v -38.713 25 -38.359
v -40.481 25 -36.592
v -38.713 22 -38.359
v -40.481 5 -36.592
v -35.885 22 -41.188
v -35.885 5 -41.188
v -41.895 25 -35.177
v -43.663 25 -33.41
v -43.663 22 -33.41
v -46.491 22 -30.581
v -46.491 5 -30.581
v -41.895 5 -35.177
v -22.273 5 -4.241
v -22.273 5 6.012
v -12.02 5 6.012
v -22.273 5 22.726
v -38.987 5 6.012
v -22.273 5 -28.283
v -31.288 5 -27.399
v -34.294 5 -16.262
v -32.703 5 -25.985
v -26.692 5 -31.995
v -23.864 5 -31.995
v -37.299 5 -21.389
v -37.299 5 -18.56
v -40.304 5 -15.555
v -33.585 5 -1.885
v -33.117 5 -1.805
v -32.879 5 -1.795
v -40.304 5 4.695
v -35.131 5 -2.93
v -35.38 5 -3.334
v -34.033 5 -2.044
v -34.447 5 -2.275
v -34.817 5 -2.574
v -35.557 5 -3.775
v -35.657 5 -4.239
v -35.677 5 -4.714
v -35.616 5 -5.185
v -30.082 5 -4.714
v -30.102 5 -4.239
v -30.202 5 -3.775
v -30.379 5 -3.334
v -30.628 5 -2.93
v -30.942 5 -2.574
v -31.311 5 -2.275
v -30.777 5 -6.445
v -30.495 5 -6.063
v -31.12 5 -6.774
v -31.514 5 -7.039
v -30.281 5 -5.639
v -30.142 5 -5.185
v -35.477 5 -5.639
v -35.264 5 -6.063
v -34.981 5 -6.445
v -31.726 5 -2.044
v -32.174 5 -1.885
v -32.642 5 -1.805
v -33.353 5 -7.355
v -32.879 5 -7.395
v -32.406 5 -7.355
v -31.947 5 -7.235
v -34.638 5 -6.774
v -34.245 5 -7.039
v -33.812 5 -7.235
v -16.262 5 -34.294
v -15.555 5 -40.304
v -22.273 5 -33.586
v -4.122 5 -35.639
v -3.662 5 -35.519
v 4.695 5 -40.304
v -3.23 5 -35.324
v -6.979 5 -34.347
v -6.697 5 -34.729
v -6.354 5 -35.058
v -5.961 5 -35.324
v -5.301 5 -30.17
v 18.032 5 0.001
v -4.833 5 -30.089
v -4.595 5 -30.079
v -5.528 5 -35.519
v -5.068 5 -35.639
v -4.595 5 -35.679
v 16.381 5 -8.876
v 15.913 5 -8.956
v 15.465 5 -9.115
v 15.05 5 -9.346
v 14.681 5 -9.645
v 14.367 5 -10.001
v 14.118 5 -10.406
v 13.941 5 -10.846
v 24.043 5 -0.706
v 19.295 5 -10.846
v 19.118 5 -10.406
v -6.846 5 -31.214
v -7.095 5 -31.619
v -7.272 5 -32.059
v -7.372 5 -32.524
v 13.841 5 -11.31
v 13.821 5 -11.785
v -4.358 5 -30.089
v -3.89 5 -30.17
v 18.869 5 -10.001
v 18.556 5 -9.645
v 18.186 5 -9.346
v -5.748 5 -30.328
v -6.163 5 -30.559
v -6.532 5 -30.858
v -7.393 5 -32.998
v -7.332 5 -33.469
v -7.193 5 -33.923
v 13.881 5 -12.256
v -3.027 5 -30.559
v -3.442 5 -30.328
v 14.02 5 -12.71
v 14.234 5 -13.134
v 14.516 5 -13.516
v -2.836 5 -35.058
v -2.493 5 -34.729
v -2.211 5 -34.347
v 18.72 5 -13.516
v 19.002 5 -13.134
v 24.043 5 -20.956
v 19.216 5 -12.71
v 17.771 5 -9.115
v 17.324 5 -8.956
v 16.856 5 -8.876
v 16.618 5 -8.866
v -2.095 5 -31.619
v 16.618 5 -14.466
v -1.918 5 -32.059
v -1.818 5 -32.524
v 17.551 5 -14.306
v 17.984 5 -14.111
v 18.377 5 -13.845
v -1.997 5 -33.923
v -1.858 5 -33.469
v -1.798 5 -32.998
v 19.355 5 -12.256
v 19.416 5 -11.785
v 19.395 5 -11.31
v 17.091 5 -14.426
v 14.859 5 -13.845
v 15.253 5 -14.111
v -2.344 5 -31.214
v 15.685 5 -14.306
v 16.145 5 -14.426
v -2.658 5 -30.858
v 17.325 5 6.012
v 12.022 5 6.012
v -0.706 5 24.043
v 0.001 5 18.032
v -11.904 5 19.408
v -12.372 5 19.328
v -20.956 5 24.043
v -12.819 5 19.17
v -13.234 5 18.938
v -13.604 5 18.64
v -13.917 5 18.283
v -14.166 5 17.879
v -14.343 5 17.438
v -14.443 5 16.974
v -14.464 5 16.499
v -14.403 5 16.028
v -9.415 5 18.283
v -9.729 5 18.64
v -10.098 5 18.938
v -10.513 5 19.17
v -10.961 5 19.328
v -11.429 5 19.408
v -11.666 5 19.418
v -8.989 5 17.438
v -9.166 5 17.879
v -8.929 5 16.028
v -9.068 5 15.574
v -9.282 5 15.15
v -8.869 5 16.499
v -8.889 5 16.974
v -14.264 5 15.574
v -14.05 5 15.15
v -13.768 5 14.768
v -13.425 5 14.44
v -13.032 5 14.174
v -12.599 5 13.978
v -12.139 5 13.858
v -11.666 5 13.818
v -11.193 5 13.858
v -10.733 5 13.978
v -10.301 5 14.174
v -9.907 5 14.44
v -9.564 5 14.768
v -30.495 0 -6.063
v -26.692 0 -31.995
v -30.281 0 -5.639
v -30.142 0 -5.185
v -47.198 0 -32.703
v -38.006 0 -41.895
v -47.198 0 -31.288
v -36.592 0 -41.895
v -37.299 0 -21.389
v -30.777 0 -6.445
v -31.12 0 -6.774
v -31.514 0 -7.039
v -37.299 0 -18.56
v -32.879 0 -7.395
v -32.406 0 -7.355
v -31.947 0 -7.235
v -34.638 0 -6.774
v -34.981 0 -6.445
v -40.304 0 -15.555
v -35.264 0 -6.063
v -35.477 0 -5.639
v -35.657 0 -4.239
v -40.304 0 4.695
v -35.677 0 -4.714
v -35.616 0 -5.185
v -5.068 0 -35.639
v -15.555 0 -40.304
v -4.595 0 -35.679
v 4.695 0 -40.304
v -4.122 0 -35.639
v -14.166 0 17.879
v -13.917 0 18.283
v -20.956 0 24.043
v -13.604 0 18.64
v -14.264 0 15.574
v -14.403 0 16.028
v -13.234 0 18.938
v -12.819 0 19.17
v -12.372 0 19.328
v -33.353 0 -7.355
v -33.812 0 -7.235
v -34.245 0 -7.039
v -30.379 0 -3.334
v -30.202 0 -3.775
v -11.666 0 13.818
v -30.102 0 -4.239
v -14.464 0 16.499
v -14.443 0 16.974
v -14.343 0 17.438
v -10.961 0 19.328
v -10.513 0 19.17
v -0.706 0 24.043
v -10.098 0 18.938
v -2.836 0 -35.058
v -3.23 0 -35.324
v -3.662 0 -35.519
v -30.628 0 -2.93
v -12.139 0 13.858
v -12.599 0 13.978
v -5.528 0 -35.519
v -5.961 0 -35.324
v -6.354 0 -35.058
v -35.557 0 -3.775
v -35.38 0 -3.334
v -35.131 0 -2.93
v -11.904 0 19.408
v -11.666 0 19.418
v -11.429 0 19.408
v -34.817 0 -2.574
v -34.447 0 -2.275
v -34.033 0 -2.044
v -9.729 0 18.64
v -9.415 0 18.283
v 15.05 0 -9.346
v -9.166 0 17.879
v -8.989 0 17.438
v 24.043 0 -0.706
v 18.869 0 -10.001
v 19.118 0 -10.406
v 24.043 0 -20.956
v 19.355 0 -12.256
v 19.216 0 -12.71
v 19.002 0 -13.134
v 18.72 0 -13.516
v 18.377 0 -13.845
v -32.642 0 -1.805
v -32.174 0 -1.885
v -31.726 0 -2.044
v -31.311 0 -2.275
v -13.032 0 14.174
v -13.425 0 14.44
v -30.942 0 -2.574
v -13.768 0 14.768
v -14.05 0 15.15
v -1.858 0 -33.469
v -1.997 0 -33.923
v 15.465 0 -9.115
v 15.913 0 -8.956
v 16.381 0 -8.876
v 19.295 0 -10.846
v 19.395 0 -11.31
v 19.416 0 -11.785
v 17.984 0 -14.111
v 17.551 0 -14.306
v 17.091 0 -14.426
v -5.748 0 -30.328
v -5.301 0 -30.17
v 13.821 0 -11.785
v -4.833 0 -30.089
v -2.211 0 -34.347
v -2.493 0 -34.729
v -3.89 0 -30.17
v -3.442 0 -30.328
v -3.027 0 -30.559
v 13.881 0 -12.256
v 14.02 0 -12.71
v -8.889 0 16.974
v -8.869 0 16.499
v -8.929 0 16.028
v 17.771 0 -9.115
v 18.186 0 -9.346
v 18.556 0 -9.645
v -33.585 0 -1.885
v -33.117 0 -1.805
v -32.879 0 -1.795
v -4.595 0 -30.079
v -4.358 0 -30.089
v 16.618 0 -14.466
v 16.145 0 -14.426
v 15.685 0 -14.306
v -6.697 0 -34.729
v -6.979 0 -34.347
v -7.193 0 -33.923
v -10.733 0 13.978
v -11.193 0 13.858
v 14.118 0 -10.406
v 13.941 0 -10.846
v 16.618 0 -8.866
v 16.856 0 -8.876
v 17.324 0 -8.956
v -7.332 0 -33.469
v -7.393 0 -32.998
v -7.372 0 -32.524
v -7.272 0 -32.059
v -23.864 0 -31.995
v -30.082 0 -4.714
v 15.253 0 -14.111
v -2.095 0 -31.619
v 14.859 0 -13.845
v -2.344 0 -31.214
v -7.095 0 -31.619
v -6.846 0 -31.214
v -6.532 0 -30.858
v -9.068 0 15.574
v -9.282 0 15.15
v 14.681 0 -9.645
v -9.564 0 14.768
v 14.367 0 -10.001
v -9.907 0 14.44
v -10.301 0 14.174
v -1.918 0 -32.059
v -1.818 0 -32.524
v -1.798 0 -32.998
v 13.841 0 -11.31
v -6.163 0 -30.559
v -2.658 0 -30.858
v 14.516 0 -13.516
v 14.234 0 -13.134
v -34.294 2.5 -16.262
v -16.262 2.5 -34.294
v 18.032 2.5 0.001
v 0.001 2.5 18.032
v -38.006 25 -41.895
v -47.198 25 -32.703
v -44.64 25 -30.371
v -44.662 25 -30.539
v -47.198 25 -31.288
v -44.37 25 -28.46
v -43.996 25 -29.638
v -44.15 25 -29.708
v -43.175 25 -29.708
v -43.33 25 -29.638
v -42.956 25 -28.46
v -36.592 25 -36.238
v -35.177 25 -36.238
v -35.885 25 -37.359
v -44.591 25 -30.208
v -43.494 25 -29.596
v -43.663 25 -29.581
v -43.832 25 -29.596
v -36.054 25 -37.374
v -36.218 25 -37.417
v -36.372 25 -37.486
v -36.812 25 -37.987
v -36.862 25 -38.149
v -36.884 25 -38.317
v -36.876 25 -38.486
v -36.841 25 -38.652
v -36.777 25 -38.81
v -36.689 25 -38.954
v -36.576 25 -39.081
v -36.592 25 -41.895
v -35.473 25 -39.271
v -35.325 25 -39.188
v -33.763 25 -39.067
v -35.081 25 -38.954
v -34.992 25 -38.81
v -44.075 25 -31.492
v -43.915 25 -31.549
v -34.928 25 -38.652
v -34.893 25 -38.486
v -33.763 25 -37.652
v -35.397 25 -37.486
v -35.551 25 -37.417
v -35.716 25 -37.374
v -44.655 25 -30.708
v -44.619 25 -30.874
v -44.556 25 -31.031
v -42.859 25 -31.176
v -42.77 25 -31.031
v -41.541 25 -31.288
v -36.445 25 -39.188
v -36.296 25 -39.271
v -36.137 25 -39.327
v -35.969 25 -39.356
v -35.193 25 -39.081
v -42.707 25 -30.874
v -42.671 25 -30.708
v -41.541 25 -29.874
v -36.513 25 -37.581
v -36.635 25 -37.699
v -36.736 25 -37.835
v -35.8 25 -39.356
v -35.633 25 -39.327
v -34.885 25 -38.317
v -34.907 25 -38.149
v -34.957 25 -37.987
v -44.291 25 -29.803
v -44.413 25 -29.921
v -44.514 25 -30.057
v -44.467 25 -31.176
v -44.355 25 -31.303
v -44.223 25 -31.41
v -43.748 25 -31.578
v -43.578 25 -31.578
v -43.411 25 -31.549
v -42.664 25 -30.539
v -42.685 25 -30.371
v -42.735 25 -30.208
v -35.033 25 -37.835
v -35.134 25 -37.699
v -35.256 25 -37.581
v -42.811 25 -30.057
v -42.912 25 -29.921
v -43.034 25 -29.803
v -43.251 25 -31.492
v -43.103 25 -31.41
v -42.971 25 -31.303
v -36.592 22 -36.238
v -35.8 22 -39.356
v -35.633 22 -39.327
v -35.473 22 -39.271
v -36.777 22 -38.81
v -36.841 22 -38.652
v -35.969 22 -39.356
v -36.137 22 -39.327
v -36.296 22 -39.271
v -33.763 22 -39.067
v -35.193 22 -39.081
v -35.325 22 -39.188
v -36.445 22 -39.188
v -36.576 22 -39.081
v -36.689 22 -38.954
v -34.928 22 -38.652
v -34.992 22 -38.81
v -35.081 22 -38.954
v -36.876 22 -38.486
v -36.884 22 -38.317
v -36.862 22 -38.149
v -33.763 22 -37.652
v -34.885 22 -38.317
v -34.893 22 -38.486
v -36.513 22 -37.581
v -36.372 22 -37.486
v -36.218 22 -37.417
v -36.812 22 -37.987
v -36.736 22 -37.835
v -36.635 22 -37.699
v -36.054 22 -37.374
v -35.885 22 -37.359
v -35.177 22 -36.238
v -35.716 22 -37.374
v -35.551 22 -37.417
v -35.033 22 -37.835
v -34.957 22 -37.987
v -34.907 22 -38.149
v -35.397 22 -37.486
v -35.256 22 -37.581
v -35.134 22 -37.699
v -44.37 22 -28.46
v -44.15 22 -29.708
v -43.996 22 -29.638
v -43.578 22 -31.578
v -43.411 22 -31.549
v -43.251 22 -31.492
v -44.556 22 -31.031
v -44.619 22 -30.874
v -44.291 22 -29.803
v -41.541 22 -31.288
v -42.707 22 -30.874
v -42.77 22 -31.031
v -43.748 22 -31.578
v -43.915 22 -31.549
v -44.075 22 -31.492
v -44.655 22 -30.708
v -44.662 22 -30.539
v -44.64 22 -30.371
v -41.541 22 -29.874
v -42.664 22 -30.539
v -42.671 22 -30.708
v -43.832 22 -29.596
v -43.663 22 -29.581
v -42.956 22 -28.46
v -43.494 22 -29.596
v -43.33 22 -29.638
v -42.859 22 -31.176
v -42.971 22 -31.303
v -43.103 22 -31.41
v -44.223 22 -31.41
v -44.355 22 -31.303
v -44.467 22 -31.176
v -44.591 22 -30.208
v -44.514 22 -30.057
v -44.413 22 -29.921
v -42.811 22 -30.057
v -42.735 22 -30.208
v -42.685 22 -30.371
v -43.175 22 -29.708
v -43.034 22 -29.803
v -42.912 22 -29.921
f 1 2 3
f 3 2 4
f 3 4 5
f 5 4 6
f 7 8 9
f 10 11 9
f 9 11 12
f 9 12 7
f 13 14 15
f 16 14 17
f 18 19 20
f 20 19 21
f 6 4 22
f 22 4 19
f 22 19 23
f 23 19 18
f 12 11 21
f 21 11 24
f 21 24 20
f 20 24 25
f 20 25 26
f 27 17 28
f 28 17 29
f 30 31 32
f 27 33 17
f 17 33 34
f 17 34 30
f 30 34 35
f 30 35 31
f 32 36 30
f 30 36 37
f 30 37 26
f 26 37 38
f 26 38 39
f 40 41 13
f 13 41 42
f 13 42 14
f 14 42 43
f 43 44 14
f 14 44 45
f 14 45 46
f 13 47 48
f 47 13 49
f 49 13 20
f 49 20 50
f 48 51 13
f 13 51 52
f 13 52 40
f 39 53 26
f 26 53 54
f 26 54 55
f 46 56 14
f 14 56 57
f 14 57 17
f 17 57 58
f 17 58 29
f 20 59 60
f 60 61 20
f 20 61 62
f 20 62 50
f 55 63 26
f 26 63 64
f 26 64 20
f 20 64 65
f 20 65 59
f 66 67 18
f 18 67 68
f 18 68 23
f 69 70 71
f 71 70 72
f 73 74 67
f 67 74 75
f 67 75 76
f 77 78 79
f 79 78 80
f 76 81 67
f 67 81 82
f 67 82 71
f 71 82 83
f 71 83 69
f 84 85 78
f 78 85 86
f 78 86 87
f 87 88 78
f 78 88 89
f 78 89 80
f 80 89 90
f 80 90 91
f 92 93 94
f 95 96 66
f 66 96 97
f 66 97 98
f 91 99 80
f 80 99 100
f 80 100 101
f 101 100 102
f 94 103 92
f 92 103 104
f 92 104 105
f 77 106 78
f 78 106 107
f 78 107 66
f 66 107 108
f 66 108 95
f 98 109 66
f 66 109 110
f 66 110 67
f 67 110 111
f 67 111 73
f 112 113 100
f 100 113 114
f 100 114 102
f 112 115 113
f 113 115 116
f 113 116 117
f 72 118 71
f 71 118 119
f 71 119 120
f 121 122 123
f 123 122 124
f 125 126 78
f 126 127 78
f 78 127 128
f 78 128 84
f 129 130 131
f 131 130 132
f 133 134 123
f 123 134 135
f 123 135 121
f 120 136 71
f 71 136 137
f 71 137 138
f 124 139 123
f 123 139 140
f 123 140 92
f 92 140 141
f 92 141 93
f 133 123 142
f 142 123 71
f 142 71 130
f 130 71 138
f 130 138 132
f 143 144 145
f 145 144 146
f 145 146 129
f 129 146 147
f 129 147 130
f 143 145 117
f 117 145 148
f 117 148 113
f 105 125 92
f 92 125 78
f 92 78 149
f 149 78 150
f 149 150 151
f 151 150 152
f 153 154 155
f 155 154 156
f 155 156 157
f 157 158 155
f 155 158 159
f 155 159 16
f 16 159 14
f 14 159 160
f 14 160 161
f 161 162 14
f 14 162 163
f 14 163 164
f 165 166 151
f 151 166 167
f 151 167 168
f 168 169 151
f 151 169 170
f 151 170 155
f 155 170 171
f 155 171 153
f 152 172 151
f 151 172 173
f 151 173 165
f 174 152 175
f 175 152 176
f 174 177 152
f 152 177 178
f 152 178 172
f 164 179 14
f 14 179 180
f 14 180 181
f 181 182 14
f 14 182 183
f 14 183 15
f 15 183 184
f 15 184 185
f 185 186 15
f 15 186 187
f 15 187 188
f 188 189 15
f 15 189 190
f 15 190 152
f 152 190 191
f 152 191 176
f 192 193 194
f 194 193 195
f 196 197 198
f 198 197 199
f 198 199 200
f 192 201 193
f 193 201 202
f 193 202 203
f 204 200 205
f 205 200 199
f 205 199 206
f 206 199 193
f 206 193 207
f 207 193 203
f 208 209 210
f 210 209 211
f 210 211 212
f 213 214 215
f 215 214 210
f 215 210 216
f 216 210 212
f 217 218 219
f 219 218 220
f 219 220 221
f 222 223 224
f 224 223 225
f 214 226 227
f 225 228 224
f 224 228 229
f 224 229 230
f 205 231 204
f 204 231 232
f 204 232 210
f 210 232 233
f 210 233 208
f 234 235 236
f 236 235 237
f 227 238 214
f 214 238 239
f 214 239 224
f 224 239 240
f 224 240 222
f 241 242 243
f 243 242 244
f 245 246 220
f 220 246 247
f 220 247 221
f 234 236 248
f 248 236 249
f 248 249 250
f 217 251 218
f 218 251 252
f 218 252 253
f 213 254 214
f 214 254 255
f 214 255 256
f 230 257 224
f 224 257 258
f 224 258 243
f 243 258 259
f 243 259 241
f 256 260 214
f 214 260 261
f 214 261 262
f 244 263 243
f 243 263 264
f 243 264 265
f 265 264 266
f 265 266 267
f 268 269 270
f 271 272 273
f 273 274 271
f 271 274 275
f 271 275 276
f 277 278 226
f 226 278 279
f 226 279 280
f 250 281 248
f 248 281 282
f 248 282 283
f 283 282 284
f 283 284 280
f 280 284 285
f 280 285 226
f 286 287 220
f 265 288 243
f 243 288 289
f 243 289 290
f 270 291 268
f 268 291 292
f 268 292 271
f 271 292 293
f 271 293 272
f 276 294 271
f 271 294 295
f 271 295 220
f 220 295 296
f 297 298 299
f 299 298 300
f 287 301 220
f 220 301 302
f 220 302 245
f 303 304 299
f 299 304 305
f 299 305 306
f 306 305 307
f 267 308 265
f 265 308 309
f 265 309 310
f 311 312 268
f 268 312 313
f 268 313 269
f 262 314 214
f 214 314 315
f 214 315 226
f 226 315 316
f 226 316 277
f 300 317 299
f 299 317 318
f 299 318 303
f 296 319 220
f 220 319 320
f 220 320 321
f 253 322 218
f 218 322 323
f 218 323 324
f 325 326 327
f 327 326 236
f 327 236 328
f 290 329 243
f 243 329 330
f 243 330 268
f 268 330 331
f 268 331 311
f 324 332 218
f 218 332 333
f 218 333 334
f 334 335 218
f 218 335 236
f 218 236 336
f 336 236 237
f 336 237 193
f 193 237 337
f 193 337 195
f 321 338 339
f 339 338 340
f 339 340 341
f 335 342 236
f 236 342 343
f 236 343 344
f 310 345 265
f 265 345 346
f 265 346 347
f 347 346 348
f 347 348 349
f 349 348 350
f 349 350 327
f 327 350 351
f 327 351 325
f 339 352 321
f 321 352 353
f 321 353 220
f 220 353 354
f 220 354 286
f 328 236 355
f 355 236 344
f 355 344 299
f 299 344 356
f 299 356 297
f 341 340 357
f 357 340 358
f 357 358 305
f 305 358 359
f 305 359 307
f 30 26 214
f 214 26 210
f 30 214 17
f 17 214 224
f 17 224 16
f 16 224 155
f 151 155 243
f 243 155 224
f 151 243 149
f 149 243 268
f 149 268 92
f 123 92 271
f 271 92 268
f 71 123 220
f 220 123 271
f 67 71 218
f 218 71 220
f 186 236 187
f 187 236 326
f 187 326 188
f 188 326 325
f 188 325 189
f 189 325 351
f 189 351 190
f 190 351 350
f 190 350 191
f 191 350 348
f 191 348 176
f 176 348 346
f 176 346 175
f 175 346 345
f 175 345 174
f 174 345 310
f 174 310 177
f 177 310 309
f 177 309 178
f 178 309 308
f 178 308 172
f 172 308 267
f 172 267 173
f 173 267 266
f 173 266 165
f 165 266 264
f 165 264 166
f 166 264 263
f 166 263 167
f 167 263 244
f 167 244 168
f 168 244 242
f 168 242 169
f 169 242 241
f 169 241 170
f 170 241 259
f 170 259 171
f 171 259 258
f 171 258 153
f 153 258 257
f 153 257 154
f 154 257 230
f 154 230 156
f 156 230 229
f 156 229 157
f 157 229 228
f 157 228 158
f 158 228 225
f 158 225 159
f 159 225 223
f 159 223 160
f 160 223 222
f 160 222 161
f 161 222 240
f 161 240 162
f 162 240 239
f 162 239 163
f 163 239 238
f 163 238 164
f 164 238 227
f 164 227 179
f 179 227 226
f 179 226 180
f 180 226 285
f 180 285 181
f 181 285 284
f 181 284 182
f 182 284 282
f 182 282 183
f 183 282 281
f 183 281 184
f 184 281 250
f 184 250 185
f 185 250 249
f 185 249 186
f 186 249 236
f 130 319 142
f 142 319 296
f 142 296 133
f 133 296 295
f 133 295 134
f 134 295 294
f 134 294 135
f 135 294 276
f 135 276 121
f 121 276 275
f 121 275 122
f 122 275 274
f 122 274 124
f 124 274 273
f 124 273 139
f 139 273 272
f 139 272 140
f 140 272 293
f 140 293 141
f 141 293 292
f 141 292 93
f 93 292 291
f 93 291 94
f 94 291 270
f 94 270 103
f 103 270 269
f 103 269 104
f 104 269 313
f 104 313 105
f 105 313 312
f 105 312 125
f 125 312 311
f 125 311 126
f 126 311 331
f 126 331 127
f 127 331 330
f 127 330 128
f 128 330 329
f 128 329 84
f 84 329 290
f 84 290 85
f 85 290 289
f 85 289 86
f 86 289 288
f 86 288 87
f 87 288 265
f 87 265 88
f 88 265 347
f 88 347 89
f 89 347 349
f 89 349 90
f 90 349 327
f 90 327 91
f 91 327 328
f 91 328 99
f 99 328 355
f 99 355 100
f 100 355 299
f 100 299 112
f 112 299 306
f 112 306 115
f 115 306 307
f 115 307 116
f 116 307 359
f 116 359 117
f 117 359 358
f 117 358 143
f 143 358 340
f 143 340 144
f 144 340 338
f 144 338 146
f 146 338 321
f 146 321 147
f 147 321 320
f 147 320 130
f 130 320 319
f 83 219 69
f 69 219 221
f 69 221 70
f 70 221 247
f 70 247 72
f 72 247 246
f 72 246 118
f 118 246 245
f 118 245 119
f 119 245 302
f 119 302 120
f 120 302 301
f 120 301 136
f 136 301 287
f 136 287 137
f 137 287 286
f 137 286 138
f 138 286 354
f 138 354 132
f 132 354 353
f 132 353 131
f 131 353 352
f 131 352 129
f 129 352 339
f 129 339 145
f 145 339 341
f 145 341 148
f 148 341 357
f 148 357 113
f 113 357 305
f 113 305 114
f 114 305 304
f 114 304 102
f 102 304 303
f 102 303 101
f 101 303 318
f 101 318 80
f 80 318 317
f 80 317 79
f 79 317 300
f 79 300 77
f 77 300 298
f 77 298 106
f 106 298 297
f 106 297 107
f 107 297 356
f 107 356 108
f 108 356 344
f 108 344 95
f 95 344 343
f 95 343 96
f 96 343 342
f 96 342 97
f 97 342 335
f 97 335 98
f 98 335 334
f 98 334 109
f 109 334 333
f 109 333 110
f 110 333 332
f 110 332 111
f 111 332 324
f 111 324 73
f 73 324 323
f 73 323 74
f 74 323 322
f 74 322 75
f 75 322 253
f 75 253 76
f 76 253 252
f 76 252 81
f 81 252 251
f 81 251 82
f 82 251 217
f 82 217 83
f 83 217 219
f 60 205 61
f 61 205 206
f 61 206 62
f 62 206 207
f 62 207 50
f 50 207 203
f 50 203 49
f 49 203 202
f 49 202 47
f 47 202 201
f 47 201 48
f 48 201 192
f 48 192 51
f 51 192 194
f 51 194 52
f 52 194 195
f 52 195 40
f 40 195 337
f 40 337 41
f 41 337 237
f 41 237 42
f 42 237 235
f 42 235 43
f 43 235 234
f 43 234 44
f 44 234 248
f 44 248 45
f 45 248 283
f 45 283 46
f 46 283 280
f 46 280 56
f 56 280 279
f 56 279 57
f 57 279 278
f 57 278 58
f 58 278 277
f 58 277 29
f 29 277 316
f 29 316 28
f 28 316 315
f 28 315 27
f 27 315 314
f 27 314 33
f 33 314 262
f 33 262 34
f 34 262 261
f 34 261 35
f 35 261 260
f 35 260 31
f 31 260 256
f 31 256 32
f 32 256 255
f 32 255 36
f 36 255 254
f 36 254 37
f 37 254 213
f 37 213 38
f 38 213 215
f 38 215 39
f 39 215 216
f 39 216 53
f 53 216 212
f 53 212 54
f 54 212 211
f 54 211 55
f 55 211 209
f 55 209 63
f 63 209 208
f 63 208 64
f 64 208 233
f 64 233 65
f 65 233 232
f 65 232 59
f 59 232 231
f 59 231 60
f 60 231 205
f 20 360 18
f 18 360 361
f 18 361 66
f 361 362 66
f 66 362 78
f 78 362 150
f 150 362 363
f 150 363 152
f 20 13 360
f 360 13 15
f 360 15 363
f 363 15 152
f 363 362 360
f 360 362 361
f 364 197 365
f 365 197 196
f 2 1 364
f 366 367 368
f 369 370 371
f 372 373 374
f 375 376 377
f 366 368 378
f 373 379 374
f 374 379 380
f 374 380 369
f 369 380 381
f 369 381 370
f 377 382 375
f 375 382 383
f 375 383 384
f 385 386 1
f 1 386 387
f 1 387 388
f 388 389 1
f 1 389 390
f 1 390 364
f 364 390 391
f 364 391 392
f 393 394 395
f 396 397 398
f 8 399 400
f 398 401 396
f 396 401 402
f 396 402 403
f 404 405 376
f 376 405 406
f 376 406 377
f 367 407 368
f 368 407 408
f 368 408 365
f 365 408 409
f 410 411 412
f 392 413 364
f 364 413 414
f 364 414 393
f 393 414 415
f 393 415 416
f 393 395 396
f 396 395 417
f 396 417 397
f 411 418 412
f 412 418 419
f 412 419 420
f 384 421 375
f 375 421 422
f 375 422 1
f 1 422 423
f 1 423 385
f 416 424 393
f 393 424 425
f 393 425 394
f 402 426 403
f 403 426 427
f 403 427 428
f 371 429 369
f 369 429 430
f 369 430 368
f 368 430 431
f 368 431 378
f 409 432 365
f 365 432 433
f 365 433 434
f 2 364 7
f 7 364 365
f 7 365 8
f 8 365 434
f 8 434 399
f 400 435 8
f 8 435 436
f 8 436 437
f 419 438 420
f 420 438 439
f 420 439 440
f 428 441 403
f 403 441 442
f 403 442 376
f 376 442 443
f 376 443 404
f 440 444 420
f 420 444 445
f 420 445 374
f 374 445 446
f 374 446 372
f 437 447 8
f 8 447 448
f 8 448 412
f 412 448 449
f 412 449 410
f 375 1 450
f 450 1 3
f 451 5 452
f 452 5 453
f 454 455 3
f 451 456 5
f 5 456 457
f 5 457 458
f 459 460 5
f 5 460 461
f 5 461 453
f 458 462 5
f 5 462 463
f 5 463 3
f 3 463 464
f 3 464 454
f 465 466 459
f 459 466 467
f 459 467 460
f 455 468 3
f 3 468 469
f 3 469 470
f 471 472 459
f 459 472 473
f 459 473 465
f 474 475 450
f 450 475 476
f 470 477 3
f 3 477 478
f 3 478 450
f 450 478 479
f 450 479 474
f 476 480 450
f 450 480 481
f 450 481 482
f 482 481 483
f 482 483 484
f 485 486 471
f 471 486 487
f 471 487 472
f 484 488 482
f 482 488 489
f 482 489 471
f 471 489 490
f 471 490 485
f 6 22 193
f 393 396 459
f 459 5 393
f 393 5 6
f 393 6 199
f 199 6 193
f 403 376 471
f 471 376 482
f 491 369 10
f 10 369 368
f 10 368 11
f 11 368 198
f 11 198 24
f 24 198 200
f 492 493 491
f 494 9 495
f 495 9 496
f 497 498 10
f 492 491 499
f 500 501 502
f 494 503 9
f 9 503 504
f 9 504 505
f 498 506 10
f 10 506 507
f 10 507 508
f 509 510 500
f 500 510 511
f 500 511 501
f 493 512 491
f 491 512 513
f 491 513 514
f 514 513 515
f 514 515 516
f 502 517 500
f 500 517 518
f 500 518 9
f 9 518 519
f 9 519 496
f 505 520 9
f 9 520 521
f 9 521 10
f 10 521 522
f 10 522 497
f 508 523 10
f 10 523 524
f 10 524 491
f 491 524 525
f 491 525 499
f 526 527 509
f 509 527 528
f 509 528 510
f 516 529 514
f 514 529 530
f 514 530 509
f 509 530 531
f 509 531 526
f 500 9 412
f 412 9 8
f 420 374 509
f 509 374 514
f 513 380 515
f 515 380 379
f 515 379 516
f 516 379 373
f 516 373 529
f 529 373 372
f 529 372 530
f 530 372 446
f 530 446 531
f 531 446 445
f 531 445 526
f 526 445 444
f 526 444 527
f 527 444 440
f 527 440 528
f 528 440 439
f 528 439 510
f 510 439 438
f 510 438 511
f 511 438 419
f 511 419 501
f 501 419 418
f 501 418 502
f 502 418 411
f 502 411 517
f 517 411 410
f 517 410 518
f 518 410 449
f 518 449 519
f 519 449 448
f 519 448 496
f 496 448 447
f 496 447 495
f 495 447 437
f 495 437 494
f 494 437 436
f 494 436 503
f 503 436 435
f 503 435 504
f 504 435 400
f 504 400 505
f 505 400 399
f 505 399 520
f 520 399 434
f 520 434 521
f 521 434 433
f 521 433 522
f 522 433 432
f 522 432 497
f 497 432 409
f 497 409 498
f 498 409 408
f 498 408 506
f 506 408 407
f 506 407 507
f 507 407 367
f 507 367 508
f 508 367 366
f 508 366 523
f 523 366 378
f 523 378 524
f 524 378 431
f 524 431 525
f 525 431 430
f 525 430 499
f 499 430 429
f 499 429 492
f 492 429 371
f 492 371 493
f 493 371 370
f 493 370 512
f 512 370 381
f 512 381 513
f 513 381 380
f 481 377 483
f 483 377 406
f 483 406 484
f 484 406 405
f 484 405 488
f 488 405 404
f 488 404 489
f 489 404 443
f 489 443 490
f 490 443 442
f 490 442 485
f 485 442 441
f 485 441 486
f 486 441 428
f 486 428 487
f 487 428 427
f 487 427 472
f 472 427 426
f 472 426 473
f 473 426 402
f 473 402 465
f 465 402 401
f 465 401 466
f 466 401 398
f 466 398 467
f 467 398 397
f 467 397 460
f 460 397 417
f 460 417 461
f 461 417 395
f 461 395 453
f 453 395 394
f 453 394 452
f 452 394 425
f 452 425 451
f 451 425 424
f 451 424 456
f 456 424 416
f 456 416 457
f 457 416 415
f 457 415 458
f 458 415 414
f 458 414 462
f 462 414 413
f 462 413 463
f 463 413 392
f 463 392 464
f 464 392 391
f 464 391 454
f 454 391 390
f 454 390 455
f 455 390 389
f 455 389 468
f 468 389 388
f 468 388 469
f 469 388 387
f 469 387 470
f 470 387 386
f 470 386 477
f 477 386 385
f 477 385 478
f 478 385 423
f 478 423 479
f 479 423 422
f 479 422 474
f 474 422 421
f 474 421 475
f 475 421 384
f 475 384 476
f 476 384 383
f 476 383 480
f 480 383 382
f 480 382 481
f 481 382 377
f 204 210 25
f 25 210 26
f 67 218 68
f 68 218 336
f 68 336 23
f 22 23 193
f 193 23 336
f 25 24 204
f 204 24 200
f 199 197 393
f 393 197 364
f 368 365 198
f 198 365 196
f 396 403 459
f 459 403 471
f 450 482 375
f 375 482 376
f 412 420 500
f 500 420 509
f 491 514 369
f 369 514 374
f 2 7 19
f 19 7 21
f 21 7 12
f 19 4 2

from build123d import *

# Parameters (mm, degrees)
SKETCH1_R           = 2.8
BOSS_EXTRUDE1_DEPTH = 5
CUT_EXTRUDE1_DEPTH  = 2.5
SKETCH3_W           = 35
SKETCH3_H           = 5
BOSS_EXTRUDE2_DEPTH = 17
BOSS_EXTRUDE3_DEPTH = 20
SKETCH5_W           = 4
SKETCH5_H           = 3
BOSS_EXTRUDE4_DEPTH = 4
CUT_EXTRUDE2_REACH  = 80.107
SKETCH6_R           = 1
CUT_EXTRUDE5_REACH  = 93.963
SKETCH12_W          = 6.25
SKETCH12_H          = 20
SKETCH12_W_2        = 13.75
CUT_EXTRUDE6_REACH  = 78.654
CHAMFER6_SIZE       = 2
CHAMFER7_SIZE       = 1
CHAMFER8_SIZE       = 1
RIB1_REACH          = 69.778
SKETCH17_WALL_W     = 161.408820482
SKETCH17_WALL_H     = 2


with BuildPart() as part:
    # Sketch1 → Boss-Extrude1 (new body)
    with BuildSketch(Plane(origin=(0, 0, 0), x_dir=(1, 0, 0), z_dir=(0, 1, 0))):
        Polygon((-40.303943114, 15.555205773), (-15.555205773, 40.303943114), (4.694794227, 40.303943114), (24.042773974, 20.955963368), (24.042773974, 0.705963368), (-0.705963368, -24.042773974), (-20.955963368, -24.042773974), (-40.303943114, -4.694794227), align=None)
        with Locations(Location((-11.666118476, -16.618152771, 0), (0, 0, 270))):
            Circle(SKETCH1_R, mode=Mode.SUBTRACT)
        with Locations(Location((16.618152771, 11.666118476, 0), (0, 0, 270))):
            Circle(SKETCH1_R, mode=Mode.SUBTRACT)
        with Locations(Location((-4.595050664, 32.879321912, 0), (0, 0, 270))):
            Circle(SKETCH1_R, mode=Mode.SUBTRACT)
        with Locations(Location((-32.879321912, 4.595050664, 0), (0, 0, 270))):
            Circle(SKETCH1_R, mode=Mode.SUBTRACT)
    extrude(amount=BOSS_EXTRUDE1_DEPTH)

    # Sketch2 → Cut-Extrude1 (cut)
    with BuildSketch(Plane(origin=(0, 5, 0), x_dir=(1, 0, 0), z_dir=(0, 1, 0))):
        Polygon((0.001143413, -18.032366333), (-34.293535474, 16.262312554), (-16.262312554, 34.293535474), (18.032366333, -0.001143413), align=None)
    extrude(amount=-CUT_EXTRUDE1_DEPTH, mode=Mode.SUBTRACT)

    # Sketch3 → Boss-Extrude2 (add)
    with BuildSketch(Plane(origin=(-27.929574444, 0, -27.929574444), x_dir=(-0.7071067811865489, 0, 0.7071067811865461), z_dir=(-0.7071067811865461, 0, -0.7071067811865489))):
        with Locations((0, 2.5)):
            Rectangle(SKETCH3_W, SKETCH3_H)
    extrude(amount=BOSS_EXTRUDE2_DEPTH)

    # Sketch4 → Boss-Extrude3 (add)
    with BuildSketch(Plane(origin=(0, 5, 0), x_dir=(1, 0, 0), z_dir=(0, 1, 0))):
        Polygon((-52.324758395, 27.576021053), (-50.910544832, 26.161807491), (-26.161807491, 50.910544832), (-27.576021053, 52.324758395), align=None)
    extrude(amount=BOSS_EXTRUDE3_DEPTH)

    # Sketch5 → Boss-Extrude4 (add)
    with BuildSketch(Plane(origin=(-38.536176161, 0, -38.536176161), x_dir=(0.7071067811865475, 0, -0.7071067811865477), z_dir=(0.7071067811865477, 0, 0.7071067811865475))):
        with Locations((-9.25, 23.5)):
            Rectangle(SKETCH5_W, SKETCH5_H)
        with Locations((1.75, 23.5)):
            Rectangle(SKETCH5_W, SKETCH5_H)
    extrude(amount=BOSS_EXTRUDE4_DEPTH)

    # Sketch6 → Cut-Extrude2 (cut, up to next)
    with BuildSketch(Plane(origin=(0, 25, 0), x_dir=(1, 0, 0), z_dir=(0, 1, 0)), mode=Mode.PRIVATE) as cut_extrude2_sk1:
        with Locations(Location((-43.662700325, 30.581224873, 0), (0, 0, 270))):
            Circle(SKETCH6_R)
    cut_extrude2_tool1 = extrude(cut_extrude2_sk1.sketch, amount=-CUT_EXTRUDE2_REACH, mode=Mode.PRIVATE) & part.part
    # Sketch6 → Cut-Extrude2 (cut, up to next)
    with BuildSketch(Plane(origin=(0, 25, 0), x_dir=(1, 0, 0), z_dir=(0, 1, 0)), mode=Mode.PRIVATE) as cut_extrude2_sk2:
        with Locations(Location((-35.884525732, 38.359399466, 0), (0, 0, 270))):
            Circle(SKETCH6_R)
    cut_extrude2_tool2 = extrude(cut_extrude2_sk2.sketch, amount=-CUT_EXTRUDE2_REACH, mode=Mode.PRIVATE) & part.part
    add(cut_extrude2_tool1.solids().sort_by_distance((-43.6627, 25, -30.581225))[0], mode=Mode.SUBTRACT)
    add(cut_extrude2_tool2.solids().sort_by_distance((-35.884526, 25, -38.359399))[0], mode=Mode.SUBTRACT)

    # Sketch12 → Cut-Extrude5 (cut, up to next)
    with BuildSketch(Plane(origin=(-38.536176161, 0, -38.536176161), x_dir=(0.7071067811865476, 0, -0.7071067811865476), z_dir=(0.7071067811865476, 0, 0.7071067811865476)), mode=Mode.PRIVATE) as cut_extrude5_sk1:
        with Locations((-14.375, 15)):
            Rectangle(SKETCH12_W, SKETCH12_H)
    cut_extrude5_tool1 = extrude(cut_extrude5_sk1.sketch, amount=-CUT_EXTRUDE5_REACH, mode=Mode.PRIVATE) & part.part
    # Sketch12 → Cut-Extrude5 (cut, up to next)
    with BuildSketch(Plane(origin=(-38.536176161, 0, -38.536176161), x_dir=(0.7071067811865476, 0, -0.7071067811865476), z_dir=(0.7071067811865476, 0, 0.7071067811865476)), mode=Mode.PRIVATE) as cut_extrude5_sk2:
        with Locations((10.625, 15)):
            Rectangle(SKETCH12_W_2, SKETCH12_H)
    cut_extrude5_tool2 = extrude(cut_extrude5_sk2.sketch, amount=-CUT_EXTRUDE5_REACH, mode=Mode.PRIVATE) & part.part
    add(cut_extrude5_tool1.solids().sort_by_distance((-48.700836, 15, -28.371516))[0], mode=Mode.SUBTRACT)
    add(cut_extrude5_tool2.solids().sort_by_distance((-31.023167, 15, -46.049186))[0], mode=Mode.SUBTRACT)

    # Sketch13 → Cut-Extrude6 (cut, up to next)
    with BuildSketch(Plane(origin=(0, 5, 0), x_dir=(1, 0, 0), z_dir=(0, 1, 0)), mode=Mode.PRIVATE) as cut_extrude6_sk1:
        Polygon((-52.324758395, 27.576021053), (-50.910544832, 26.161807491), (-46.49112745, 30.581224873), (-47.905341012, 31.995438435), align=None)
    cut_extrude6_tool1 = extrude(cut_extrude6_sk1.sketch, amount=-CUT_EXTRUDE6_REACH, mode=Mode.PRIVATE) & part.part
    # Sketch13 → Cut-Extrude6 (cut, up to next)
    with BuildSketch(Plane(origin=(0, 5, 0), x_dir=(1, 0, 0), z_dir=(0, 1, 0)), mode=Mode.PRIVATE) as cut_extrude6_sk2:
        Polygon((-46.49112745, 30.581224873), (-50.910544832, 26.161807491), (-40.303943114, 15.555205773), (-35.884525732, 19.974623155), align=None)
    cut_extrude6_tool2 = extrude(cut_extrude6_sk2.sketch, amount=-CUT_EXTRUDE6_REACH, mode=Mode.PRIVATE) & part.part
    # Sketch13 → Cut-Extrude6 (cut, up to next)
    with BuildSketch(Plane(origin=(0, 5, 0), x_dir=(1, 0, 0), z_dir=(0, 1, 0)), mode=Mode.PRIVATE) as cut_extrude6_sk3:
        Polygon((-27.576021053, 52.324758395), (-37.298739294, 42.602040153), (-35.884525732, 41.187826591), (-25.277924014, 30.581224873), (-15.555205773, 40.303943114), align=None)
    cut_extrude6_tool3 = extrude(cut_extrude6_sk3.sketch, amount=-CUT_EXTRUDE6_REACH, mode=Mode.PRIVATE) & part.part
    add(cut_extrude6_tool1.solids().sort_by_distance((-49.407943, 5, -29.078623))[0], mode=Mode.SUBTRACT)
    add(cut_extrude6_tool2.solids().sort_by_distance((-43.397535, 5, -23.068215))[0], mode=Mode.SUBTRACT)
    add(cut_extrude6_tool3.solids().sort_by_distance((-26.426973, 5, -41.452992))[0], mode=Mode.SUBTRACT)

    # Chamfer6
    chamfer6_edges = [part.edges().sort_by_distance(p)[0] for p in [
        (-25.277924014, 2.5, -30.581224873),
        (-35.884525732, 2.5, -19.974623155),
    ]]
    chamfer(chamfer6_edges, length=CHAMFER6_SIZE)

    # Chamfer7
    chamfer7_edges = [part.edges().sort_by_distance(p)[0] for p in [
        (-47.905341012, 12.5, -31.995438435),
        (-37.298739294, 12.5, -42.602040153),
    ]]
    chamfer(chamfer7_edges, length=CHAMFER7_SIZE)

    # Chamfer8
    chamfer8_edges = [part.edges().sort_by_distance(p)[0] for p in [
        (-43.662700325, 23.5, -27.752797748),
        (-40.8342732, 23.5, -30.581224873),
        (-35.884525732, 23.5, -35.530972341),
        (-33.056098607, 23.5, -38.359399466),
    ]]
    chamfer(chamfer8_edges, length=CHAMFER8_SIZE)

    # Sketch17 wall → Rib1 (add, up to next)
    with BuildSketch(Plane(origin=(-36.591632513, 15, -31.288331654), x_dir=(0.385364958397, -0.838443616299, 0.385364958355), z_dir=(0.592869166727, 0.544988350599, 0.592869166727)), mode=Mode.PRIVATE) as rib1_sk1:
        Rectangle(SKETCH17_WALL_W, SKETCH17_WALL_H)
    rib1_tool1 = extrude(rib1_sk1.sketch, amount=-RIB1_REACH, mode=Mode.PRIVATE) - part.part
    add(rib1_tool1.solids().sort_by_distance((-36.591632513, 15, -31.288331654))[0])


solid = part.part
